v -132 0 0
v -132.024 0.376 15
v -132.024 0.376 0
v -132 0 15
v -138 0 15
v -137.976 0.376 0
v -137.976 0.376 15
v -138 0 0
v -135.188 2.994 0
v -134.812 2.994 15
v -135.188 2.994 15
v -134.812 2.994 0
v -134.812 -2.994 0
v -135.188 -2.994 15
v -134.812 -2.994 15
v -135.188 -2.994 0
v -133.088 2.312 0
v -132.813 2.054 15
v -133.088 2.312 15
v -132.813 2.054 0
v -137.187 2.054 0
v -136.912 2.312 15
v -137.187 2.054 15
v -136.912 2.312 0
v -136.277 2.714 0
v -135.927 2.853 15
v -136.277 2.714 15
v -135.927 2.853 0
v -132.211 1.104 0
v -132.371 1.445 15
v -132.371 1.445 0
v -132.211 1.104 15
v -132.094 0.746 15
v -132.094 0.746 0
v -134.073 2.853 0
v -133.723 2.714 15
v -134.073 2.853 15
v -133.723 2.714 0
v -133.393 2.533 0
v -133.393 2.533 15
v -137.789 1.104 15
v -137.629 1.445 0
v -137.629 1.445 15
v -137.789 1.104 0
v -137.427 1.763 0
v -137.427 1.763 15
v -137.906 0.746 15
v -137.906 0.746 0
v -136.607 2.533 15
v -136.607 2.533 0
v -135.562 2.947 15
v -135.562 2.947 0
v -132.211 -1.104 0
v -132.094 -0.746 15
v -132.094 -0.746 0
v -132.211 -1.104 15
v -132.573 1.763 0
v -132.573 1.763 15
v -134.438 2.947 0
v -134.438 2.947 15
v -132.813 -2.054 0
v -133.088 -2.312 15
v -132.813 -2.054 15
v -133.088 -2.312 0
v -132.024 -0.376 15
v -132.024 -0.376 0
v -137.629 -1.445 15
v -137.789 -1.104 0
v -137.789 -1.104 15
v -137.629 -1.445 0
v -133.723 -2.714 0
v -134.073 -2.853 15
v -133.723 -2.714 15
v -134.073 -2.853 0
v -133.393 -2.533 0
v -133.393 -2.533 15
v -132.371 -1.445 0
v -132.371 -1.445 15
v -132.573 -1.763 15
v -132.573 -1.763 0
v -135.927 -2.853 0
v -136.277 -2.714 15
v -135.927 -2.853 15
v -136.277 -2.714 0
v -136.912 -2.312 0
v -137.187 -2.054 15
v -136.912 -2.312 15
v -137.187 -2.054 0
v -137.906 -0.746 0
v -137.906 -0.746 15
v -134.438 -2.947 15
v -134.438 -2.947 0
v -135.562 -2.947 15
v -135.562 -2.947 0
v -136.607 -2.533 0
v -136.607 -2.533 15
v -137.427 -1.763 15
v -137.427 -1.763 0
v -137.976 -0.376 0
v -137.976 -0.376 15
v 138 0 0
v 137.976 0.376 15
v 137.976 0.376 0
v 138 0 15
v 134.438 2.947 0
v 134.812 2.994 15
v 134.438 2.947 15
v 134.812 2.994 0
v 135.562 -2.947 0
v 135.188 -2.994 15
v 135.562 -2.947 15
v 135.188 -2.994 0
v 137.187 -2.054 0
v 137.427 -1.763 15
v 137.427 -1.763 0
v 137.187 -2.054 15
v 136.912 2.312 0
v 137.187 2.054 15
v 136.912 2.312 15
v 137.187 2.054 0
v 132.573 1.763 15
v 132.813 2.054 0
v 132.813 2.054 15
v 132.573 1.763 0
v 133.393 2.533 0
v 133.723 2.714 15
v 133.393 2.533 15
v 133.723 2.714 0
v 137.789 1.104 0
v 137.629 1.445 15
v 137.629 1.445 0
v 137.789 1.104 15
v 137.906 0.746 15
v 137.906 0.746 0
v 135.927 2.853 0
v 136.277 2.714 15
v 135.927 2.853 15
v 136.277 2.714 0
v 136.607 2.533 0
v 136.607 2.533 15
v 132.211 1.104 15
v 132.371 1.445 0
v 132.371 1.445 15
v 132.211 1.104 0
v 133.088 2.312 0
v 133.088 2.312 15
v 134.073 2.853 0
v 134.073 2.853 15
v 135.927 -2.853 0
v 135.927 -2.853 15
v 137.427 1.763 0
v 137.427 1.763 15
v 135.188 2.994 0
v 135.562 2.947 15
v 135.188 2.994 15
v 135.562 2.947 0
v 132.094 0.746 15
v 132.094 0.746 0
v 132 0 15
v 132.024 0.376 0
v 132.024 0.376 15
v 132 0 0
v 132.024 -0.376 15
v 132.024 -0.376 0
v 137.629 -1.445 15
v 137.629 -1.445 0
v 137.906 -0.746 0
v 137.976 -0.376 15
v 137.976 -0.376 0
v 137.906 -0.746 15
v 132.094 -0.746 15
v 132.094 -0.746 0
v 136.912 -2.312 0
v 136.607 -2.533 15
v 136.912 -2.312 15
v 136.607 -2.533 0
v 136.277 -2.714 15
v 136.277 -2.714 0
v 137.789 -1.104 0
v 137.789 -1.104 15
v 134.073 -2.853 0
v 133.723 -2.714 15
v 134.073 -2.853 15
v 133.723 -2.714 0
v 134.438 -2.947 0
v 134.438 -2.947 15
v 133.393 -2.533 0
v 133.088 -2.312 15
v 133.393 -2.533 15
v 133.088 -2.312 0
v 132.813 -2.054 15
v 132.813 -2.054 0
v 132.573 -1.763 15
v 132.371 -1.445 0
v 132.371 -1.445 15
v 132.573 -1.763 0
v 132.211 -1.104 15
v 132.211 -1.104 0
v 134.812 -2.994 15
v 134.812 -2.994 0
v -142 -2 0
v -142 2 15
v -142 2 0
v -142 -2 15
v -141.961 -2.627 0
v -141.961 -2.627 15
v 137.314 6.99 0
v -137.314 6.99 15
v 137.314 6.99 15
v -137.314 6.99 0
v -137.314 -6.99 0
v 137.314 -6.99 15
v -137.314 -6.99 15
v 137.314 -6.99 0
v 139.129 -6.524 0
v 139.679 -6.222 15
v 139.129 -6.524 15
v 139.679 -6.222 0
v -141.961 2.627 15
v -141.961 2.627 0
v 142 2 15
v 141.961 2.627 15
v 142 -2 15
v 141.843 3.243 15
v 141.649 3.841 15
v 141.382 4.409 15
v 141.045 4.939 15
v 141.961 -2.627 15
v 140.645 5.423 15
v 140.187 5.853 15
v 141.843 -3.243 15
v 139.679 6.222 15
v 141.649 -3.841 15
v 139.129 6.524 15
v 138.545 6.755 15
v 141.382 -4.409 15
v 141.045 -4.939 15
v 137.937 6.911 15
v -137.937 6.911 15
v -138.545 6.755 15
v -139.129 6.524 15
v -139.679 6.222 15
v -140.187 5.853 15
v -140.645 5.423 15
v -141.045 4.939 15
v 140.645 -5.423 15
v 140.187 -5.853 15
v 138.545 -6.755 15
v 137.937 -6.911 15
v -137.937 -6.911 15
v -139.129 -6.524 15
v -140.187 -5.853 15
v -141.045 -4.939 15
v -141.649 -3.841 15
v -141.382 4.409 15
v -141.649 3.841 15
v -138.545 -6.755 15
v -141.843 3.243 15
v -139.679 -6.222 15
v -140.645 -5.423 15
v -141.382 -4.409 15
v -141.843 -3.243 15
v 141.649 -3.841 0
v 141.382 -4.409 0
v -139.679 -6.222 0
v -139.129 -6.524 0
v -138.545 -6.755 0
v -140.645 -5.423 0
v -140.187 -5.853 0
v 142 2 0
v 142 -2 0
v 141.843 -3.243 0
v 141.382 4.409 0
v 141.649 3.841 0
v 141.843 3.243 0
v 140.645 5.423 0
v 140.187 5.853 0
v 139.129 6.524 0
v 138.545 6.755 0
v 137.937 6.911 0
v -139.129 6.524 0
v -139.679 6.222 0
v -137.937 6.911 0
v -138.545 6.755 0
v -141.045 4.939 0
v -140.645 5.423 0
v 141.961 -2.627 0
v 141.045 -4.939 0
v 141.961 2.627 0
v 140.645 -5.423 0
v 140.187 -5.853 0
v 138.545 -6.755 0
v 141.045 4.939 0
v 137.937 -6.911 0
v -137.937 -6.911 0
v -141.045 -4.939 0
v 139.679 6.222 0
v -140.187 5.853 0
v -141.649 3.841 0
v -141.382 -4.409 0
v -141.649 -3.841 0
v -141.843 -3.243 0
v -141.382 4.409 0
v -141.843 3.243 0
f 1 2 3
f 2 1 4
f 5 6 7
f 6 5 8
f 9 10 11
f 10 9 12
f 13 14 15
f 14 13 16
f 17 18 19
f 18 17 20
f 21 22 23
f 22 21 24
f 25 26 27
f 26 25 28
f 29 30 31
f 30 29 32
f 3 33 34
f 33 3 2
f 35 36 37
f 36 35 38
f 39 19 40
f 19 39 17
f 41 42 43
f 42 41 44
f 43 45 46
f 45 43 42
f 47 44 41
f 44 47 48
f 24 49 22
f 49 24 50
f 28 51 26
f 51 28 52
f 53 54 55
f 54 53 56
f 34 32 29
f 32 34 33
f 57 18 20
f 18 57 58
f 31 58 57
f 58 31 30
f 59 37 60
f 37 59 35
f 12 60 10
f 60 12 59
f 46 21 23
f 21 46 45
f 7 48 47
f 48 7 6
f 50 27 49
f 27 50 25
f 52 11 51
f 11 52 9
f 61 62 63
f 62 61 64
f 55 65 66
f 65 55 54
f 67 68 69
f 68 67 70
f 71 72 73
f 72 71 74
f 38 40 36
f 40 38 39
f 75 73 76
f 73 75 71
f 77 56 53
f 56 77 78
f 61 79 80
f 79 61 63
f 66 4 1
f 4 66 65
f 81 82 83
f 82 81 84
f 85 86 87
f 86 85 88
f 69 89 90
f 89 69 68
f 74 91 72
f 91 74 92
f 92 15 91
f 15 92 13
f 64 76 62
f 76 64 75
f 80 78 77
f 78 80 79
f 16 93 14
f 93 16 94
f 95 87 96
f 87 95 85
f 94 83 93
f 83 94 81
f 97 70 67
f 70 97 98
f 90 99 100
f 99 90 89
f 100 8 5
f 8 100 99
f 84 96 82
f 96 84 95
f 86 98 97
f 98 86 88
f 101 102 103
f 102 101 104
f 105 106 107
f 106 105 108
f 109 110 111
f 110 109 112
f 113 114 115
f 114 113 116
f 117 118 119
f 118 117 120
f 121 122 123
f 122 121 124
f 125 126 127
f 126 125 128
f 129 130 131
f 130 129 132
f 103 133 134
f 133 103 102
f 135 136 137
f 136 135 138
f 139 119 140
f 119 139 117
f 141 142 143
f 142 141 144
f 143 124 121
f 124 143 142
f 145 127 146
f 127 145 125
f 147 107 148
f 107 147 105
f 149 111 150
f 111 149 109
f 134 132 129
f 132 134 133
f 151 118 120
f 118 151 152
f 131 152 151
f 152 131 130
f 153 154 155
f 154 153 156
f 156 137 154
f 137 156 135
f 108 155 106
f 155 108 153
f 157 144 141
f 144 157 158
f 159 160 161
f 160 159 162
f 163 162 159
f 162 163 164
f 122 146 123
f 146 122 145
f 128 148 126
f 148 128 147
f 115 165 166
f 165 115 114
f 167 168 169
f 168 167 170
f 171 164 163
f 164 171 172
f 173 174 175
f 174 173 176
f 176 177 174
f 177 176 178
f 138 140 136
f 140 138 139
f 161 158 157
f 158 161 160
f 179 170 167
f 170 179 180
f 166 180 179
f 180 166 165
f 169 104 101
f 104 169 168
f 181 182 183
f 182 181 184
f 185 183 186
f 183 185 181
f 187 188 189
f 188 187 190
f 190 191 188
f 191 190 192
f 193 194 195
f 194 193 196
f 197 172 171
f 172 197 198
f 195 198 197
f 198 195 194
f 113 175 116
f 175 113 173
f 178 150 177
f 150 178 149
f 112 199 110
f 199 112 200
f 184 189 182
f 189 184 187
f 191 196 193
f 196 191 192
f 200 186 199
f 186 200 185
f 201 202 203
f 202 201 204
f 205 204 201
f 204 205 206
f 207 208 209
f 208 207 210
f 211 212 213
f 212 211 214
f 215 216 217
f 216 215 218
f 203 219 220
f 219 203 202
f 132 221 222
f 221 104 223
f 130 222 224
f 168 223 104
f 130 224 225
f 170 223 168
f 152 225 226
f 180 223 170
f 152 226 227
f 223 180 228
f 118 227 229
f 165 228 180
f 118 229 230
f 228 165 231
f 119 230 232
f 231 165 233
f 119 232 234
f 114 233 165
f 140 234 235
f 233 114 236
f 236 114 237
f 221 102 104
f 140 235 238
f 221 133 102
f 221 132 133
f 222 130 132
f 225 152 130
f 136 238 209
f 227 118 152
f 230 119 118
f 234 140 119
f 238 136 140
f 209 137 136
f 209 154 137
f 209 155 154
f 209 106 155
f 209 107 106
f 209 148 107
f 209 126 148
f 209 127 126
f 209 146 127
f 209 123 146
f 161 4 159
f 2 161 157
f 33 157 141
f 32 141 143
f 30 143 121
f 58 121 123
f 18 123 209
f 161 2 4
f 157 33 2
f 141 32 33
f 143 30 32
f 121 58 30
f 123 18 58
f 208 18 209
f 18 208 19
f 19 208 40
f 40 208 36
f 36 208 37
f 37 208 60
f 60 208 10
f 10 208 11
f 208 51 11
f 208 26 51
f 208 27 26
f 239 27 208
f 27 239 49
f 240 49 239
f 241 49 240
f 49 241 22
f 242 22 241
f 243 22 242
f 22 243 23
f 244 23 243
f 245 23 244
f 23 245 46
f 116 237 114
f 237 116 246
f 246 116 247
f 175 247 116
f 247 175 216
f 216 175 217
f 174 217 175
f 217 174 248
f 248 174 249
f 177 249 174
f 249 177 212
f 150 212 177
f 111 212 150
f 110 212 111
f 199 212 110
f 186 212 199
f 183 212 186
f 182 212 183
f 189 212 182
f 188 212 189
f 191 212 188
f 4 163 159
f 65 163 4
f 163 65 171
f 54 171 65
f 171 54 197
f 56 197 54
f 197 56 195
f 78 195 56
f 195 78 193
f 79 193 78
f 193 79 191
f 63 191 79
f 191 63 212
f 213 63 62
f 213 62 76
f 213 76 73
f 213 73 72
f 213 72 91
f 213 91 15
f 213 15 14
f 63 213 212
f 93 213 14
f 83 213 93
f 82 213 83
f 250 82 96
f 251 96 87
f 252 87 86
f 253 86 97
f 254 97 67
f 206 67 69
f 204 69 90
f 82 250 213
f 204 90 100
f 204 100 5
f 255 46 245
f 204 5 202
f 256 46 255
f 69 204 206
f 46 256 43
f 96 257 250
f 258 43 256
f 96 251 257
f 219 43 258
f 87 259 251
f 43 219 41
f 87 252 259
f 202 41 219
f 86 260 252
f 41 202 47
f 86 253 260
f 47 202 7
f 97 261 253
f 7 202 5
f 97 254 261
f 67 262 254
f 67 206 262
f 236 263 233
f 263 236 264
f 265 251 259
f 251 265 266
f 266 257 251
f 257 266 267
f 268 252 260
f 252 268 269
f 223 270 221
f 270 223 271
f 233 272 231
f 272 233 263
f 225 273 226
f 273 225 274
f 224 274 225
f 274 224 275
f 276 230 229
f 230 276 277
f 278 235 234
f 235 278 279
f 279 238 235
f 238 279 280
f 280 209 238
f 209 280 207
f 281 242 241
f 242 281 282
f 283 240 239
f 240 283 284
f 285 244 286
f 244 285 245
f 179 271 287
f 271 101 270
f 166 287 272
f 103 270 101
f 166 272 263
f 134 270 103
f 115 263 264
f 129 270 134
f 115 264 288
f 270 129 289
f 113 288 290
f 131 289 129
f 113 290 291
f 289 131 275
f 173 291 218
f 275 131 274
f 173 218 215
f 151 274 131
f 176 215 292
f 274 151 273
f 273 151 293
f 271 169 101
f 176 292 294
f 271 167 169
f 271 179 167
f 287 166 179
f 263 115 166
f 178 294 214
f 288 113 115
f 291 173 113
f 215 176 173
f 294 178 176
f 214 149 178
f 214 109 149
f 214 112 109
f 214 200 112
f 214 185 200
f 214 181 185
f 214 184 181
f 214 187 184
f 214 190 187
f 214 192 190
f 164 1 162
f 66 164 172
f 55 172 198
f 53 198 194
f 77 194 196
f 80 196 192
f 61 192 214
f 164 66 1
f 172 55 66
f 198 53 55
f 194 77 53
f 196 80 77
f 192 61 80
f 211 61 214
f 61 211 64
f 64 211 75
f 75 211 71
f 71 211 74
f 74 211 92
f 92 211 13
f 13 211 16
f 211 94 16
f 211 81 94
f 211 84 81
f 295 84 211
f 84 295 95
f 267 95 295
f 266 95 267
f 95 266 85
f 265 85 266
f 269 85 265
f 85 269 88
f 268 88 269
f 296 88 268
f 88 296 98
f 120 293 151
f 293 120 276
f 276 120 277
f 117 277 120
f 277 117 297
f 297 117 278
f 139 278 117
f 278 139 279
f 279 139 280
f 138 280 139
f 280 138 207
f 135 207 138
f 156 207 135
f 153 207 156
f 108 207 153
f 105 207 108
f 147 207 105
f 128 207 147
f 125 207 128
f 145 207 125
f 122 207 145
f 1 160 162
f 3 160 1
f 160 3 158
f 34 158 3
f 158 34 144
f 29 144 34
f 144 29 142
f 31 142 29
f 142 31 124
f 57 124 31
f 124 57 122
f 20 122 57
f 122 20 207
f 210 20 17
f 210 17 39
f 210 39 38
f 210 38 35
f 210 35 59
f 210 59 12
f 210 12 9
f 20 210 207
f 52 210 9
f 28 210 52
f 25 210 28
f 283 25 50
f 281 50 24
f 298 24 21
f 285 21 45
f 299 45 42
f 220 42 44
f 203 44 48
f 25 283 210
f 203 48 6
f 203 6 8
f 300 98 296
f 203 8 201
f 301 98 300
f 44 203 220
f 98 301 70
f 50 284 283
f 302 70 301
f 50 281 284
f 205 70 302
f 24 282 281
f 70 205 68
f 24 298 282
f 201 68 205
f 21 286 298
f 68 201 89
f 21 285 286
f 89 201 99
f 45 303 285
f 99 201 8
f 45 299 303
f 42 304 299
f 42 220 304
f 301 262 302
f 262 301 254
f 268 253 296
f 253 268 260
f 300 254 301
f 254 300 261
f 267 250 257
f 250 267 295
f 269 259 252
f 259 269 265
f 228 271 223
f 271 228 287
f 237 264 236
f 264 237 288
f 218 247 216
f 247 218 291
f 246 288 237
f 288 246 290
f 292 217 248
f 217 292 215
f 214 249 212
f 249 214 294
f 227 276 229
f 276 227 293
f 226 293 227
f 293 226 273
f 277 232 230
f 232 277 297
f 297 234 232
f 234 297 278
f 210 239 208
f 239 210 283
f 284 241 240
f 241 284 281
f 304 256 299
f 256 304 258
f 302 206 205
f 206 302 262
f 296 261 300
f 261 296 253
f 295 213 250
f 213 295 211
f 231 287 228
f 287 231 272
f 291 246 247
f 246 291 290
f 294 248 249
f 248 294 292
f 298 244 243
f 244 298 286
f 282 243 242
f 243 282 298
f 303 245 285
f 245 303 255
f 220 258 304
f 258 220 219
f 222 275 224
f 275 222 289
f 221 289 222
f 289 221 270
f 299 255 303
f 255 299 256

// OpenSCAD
$fn = 50;


difference() {
	union() {
		hull() {
			translate(v = [-137.0000000000, 2.0000000000, 0]) {
				cylinder(h = 15, r = 5);
			}
			translate(v = [137.0000000000, 2.0000000000, 0]) {
				cylinder(h = 15, r = 5);
			}
			translate(v = [-137.0000000000, -2.0000000000, 0]) {
				cylinder(h = 15, r = 5);
			}
			translate(v = [137.0000000000, -2.0000000000, 0]) {
				cylinder(h = 15, r = 5);
			}
		}
	}
	union() {
		translate(v = [-135.0000000000, 0.0000000000, -100.0000000000]) {
			cylinder(h = 200, r = 3.0000000000);
		}
		translate(v = [-135.0000000000, 0.0000000000, -100.0000000000]) {
			cylinder(h = 200, r = 3.0000000000);
		}
		translate(v = [135.0000000000, 0.0000000000, -100.0000000000]) {
			cylinder(h = 200, r = 3.0000000000);
		}
		translate(v = [135.0000000000, 0.0000000000, -100.0000000000]) {
			cylinder(h = 200, r = 3.0000000000);
		}
	}
}
